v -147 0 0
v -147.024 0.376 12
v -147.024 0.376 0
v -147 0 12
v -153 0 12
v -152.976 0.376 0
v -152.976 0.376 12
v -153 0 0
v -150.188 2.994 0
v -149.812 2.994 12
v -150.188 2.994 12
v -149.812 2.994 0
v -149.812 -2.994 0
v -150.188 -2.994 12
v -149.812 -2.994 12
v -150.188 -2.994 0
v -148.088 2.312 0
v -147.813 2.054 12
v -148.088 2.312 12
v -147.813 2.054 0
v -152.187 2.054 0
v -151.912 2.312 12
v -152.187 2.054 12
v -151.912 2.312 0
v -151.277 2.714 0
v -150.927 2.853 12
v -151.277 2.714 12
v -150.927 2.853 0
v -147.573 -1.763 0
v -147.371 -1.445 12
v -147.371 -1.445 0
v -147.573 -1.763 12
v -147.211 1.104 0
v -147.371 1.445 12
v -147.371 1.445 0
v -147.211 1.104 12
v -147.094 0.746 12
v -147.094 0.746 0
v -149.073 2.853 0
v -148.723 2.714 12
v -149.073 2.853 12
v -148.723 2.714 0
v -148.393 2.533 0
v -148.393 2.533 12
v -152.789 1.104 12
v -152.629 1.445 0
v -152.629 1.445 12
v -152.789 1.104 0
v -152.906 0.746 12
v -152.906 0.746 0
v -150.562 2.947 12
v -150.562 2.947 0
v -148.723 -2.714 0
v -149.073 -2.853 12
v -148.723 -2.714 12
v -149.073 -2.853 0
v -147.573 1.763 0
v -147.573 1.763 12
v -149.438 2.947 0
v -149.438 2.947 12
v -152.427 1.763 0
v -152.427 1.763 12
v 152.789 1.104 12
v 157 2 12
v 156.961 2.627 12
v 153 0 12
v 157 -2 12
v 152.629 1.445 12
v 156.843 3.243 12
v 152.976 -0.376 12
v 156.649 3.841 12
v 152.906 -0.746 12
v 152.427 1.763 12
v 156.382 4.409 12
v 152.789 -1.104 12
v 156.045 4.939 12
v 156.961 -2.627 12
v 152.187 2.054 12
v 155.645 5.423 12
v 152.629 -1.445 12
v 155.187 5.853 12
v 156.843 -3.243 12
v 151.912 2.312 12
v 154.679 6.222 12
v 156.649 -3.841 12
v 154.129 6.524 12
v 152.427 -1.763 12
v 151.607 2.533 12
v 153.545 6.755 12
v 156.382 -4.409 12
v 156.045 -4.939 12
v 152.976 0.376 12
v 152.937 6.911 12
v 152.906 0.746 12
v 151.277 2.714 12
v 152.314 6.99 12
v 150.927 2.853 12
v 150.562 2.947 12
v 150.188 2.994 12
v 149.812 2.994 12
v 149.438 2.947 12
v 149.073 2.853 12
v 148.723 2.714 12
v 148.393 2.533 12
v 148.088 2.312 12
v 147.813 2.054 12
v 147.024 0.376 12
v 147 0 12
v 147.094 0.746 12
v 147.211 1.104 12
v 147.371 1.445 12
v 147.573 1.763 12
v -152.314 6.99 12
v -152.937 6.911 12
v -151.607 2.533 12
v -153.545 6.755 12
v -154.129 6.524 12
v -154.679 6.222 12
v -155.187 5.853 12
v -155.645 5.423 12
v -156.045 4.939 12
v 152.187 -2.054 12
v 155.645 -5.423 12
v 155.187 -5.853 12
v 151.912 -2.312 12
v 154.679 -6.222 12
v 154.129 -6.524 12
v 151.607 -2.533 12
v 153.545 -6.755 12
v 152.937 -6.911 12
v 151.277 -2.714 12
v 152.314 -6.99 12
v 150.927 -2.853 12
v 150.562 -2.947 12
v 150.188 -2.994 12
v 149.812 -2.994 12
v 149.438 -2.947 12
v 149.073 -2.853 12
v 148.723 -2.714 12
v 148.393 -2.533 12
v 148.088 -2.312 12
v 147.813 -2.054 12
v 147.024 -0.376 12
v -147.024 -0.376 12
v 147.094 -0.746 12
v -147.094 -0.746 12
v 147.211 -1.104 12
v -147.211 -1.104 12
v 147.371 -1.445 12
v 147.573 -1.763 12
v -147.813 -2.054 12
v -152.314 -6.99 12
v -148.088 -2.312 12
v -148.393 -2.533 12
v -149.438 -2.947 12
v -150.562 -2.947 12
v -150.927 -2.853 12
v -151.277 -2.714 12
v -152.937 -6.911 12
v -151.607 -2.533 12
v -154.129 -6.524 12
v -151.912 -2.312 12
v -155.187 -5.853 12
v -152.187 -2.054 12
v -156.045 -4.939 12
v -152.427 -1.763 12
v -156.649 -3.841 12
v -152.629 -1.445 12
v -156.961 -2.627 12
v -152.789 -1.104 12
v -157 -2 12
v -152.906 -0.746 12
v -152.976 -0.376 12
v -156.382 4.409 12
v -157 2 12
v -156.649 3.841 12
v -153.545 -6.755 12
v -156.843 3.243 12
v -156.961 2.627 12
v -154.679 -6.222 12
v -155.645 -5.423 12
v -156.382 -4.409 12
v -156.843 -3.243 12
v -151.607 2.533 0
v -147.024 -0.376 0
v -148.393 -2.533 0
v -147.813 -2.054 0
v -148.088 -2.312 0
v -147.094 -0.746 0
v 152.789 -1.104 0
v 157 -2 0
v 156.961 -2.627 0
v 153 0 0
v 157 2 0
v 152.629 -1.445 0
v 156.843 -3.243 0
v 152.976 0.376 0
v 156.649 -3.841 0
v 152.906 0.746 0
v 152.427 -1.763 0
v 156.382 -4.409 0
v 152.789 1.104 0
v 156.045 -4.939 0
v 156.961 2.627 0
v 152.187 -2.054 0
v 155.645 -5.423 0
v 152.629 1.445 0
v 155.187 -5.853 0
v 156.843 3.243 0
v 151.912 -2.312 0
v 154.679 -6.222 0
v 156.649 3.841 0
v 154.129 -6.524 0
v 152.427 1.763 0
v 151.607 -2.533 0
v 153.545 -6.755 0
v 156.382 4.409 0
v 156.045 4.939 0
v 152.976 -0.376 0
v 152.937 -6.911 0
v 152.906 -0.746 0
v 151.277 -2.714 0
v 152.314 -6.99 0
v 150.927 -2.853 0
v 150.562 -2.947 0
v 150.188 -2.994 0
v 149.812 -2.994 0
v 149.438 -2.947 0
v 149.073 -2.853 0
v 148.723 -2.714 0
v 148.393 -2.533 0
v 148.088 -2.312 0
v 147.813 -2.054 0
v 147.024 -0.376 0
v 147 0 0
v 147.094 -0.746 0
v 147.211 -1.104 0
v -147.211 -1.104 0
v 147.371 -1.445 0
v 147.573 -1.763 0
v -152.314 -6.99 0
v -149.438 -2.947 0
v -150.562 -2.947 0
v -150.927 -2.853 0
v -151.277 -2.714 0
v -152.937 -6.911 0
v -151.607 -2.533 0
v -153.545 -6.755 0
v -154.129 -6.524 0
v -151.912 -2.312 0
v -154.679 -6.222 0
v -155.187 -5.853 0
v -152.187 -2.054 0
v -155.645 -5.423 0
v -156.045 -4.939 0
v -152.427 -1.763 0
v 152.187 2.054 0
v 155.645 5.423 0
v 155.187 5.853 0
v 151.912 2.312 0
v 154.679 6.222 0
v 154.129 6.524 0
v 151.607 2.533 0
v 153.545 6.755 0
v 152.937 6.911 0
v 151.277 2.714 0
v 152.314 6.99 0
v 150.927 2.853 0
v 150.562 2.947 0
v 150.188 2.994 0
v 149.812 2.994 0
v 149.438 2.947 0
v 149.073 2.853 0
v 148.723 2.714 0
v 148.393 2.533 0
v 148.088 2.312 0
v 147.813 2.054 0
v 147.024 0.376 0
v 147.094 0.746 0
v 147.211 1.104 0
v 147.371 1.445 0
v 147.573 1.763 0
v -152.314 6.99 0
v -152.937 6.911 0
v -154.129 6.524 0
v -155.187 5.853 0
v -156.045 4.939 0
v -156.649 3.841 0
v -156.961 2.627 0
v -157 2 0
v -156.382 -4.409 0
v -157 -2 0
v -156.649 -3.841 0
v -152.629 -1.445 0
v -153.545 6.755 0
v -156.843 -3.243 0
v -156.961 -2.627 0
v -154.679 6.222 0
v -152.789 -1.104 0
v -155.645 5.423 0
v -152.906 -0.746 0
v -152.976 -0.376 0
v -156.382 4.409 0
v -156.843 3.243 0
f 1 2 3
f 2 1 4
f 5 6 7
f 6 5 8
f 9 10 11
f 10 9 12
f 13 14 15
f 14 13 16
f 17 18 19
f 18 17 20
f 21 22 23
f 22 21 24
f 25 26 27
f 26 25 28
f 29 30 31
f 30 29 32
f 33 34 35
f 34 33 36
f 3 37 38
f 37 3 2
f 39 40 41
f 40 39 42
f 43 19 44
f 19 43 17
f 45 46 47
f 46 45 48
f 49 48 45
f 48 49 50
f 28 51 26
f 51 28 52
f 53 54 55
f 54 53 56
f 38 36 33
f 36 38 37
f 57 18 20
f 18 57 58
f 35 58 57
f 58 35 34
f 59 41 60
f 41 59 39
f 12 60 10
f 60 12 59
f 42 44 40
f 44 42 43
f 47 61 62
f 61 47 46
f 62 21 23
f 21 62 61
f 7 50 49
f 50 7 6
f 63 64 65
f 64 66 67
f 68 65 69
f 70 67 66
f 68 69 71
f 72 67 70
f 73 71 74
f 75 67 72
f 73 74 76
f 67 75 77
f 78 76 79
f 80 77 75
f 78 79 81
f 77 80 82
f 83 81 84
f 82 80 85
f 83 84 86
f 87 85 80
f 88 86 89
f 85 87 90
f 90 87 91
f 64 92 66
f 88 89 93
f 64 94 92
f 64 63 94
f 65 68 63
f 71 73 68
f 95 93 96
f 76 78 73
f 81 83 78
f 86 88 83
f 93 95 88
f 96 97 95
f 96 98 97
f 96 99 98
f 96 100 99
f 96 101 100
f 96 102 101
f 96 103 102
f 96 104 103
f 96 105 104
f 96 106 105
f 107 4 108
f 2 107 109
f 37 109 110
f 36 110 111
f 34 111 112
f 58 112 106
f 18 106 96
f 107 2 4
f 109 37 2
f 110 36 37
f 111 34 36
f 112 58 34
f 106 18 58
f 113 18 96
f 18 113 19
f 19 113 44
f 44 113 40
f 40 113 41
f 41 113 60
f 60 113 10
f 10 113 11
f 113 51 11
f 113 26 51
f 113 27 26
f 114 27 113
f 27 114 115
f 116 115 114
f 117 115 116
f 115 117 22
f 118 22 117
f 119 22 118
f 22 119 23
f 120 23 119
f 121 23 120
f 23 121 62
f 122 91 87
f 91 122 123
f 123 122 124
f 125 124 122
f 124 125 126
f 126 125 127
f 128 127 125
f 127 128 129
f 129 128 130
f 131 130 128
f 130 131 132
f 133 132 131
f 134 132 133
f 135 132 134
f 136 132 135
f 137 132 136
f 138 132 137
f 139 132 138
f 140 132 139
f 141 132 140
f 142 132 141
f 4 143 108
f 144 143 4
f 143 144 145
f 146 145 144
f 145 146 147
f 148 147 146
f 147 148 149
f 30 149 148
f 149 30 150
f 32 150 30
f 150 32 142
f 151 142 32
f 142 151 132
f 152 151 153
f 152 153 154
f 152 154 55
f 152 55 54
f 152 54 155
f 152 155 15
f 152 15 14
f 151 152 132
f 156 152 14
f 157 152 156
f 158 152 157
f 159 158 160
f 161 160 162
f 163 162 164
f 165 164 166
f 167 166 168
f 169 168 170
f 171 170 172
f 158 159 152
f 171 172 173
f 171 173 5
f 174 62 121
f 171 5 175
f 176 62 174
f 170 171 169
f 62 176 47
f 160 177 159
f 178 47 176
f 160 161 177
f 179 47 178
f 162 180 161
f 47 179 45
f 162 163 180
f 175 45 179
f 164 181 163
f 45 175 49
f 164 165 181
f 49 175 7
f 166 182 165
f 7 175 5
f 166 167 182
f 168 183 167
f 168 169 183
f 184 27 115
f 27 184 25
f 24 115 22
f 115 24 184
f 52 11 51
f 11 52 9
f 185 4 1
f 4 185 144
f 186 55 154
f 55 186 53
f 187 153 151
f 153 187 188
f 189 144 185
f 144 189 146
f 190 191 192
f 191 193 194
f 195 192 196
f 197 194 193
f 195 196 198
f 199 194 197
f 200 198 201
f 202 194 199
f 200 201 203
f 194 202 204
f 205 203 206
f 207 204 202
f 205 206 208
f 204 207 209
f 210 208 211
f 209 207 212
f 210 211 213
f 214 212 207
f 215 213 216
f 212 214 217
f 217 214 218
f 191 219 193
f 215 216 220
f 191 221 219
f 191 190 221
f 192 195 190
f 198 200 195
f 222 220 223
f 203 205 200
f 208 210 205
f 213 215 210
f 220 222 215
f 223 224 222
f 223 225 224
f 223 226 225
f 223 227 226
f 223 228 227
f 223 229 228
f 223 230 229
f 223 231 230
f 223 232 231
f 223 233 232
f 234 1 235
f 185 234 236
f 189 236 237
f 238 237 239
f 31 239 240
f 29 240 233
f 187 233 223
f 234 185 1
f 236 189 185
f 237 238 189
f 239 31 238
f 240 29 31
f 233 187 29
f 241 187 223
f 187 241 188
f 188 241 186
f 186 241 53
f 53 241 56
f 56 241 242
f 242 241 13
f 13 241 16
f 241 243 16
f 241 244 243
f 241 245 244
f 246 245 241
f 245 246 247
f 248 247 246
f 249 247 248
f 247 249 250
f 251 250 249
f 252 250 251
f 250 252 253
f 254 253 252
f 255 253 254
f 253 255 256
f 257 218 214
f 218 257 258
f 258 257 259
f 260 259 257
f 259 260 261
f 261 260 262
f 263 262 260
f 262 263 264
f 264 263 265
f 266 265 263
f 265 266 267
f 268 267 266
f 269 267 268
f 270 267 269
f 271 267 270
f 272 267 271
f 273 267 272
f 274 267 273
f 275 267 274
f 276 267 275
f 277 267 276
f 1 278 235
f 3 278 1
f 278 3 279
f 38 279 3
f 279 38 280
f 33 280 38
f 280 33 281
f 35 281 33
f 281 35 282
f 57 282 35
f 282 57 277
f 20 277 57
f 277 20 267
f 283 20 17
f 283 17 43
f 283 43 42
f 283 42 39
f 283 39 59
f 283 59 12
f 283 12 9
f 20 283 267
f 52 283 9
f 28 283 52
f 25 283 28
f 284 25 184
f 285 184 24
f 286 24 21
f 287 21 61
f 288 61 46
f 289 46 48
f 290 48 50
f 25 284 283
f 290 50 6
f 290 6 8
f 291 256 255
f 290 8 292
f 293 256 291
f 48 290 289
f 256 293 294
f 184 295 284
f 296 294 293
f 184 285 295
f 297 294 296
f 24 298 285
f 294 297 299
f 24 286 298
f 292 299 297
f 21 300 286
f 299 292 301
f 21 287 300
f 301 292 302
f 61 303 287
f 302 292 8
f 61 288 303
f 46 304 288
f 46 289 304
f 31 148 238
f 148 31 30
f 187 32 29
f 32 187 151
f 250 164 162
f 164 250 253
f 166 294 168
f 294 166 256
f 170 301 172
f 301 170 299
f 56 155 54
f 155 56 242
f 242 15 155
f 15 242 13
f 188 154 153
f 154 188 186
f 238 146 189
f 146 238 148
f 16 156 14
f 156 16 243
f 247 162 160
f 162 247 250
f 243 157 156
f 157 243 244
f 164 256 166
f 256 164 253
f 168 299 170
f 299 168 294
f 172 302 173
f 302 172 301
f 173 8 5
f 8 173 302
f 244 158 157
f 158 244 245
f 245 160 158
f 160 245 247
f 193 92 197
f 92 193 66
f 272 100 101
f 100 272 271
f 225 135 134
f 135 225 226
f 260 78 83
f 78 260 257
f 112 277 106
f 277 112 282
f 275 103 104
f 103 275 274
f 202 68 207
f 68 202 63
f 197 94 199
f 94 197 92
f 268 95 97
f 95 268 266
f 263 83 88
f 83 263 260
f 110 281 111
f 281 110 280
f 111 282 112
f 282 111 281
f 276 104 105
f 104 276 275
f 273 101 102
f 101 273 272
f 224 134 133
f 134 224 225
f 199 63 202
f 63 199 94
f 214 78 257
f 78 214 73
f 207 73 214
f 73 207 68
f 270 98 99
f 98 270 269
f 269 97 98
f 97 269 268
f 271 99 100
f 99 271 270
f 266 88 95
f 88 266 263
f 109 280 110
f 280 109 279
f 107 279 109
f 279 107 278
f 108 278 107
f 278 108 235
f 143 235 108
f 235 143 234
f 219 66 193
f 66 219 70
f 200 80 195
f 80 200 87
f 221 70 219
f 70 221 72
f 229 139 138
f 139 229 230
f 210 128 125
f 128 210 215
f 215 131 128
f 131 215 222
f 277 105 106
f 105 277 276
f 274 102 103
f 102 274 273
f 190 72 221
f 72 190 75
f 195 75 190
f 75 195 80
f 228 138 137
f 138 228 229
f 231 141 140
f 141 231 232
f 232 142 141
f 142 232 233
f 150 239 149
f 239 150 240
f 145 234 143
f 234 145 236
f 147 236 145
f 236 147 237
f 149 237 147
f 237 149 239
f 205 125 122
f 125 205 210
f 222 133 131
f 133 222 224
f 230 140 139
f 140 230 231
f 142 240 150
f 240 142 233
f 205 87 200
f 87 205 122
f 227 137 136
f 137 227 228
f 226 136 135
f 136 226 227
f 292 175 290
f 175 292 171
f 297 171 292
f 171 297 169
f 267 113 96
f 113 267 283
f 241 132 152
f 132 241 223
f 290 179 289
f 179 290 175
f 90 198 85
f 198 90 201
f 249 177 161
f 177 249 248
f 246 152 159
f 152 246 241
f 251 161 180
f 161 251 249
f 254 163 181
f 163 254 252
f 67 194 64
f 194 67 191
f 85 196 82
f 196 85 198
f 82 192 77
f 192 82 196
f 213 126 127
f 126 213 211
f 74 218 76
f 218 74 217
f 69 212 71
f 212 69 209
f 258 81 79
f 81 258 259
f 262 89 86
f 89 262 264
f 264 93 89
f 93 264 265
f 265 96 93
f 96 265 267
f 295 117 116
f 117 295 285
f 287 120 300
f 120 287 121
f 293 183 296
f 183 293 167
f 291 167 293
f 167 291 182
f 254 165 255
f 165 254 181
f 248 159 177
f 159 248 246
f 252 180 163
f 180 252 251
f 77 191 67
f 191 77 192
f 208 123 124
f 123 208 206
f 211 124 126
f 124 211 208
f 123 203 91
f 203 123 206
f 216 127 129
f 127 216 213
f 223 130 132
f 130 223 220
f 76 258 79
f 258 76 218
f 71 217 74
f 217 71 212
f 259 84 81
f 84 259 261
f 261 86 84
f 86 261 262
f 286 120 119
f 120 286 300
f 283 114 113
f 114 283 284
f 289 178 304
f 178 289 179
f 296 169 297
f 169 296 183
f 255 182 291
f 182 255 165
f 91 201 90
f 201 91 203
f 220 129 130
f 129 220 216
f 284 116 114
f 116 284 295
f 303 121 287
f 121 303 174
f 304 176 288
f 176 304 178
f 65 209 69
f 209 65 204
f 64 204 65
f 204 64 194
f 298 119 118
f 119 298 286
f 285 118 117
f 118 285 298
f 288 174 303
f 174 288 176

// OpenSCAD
$fn = 50;


difference() {
	union() {
		hull() {
			translate(v = [-152.0000000000, 2.0000000000, 0]) {
				cylinder(h = 12, r = 5);
			}
			translate(v = [152.0000000000, 2.0000000000, 0]) {
				cylinder(h = 12, r = 5);
			}
			translate(v = [-152.0000000000, -2.0000000000, 0]) {
				cylinder(h = 12, r = 5);
			}
			translate(v = [152.0000000000, -2.0000000000, 0]) {
				cylinder(h = 12, r = 5);
			}
		}
	}
	union() {
		translate(v = [-150.0000000000, 0.0000000000, 0]) {
			cylinder(h = 12, r = 3.0000000000);
		}
		translate(v = [150.0000000000, 0.0000000000, 0]) {
			cylinder(h = 12, r = 3.0000000000);
		}
		translate(v = [-150.0000000000, 0.0000000000, 0]) {
			cylinder(h = 12, r = 1.5000000000);
		}
		translate(v = [150.0000000000, 0.0000000000, 0]) {
			cylinder(h = 12, r = 1.5000000000);
		}
		translate(v = [-150.0000000000, 0.0000000000, 0]) {
			cylinder(h = 12, r = 1.5000000000);
		}
		translate(v = [150.0000000000, 0.0000000000, 0]) {
			cylinder(h = 12, r = 1.5000000000);
		}
		translate(v = [-150.0000000000, 0.0000000000, 0]) {
			cylinder(h = 12, r = 1.5000000000);
		}
		translate(v = [150.0000000000, 0.0000000000, 0]) {
			cylinder(h = 12, r = 1.5000000000);
		}
	}
}
